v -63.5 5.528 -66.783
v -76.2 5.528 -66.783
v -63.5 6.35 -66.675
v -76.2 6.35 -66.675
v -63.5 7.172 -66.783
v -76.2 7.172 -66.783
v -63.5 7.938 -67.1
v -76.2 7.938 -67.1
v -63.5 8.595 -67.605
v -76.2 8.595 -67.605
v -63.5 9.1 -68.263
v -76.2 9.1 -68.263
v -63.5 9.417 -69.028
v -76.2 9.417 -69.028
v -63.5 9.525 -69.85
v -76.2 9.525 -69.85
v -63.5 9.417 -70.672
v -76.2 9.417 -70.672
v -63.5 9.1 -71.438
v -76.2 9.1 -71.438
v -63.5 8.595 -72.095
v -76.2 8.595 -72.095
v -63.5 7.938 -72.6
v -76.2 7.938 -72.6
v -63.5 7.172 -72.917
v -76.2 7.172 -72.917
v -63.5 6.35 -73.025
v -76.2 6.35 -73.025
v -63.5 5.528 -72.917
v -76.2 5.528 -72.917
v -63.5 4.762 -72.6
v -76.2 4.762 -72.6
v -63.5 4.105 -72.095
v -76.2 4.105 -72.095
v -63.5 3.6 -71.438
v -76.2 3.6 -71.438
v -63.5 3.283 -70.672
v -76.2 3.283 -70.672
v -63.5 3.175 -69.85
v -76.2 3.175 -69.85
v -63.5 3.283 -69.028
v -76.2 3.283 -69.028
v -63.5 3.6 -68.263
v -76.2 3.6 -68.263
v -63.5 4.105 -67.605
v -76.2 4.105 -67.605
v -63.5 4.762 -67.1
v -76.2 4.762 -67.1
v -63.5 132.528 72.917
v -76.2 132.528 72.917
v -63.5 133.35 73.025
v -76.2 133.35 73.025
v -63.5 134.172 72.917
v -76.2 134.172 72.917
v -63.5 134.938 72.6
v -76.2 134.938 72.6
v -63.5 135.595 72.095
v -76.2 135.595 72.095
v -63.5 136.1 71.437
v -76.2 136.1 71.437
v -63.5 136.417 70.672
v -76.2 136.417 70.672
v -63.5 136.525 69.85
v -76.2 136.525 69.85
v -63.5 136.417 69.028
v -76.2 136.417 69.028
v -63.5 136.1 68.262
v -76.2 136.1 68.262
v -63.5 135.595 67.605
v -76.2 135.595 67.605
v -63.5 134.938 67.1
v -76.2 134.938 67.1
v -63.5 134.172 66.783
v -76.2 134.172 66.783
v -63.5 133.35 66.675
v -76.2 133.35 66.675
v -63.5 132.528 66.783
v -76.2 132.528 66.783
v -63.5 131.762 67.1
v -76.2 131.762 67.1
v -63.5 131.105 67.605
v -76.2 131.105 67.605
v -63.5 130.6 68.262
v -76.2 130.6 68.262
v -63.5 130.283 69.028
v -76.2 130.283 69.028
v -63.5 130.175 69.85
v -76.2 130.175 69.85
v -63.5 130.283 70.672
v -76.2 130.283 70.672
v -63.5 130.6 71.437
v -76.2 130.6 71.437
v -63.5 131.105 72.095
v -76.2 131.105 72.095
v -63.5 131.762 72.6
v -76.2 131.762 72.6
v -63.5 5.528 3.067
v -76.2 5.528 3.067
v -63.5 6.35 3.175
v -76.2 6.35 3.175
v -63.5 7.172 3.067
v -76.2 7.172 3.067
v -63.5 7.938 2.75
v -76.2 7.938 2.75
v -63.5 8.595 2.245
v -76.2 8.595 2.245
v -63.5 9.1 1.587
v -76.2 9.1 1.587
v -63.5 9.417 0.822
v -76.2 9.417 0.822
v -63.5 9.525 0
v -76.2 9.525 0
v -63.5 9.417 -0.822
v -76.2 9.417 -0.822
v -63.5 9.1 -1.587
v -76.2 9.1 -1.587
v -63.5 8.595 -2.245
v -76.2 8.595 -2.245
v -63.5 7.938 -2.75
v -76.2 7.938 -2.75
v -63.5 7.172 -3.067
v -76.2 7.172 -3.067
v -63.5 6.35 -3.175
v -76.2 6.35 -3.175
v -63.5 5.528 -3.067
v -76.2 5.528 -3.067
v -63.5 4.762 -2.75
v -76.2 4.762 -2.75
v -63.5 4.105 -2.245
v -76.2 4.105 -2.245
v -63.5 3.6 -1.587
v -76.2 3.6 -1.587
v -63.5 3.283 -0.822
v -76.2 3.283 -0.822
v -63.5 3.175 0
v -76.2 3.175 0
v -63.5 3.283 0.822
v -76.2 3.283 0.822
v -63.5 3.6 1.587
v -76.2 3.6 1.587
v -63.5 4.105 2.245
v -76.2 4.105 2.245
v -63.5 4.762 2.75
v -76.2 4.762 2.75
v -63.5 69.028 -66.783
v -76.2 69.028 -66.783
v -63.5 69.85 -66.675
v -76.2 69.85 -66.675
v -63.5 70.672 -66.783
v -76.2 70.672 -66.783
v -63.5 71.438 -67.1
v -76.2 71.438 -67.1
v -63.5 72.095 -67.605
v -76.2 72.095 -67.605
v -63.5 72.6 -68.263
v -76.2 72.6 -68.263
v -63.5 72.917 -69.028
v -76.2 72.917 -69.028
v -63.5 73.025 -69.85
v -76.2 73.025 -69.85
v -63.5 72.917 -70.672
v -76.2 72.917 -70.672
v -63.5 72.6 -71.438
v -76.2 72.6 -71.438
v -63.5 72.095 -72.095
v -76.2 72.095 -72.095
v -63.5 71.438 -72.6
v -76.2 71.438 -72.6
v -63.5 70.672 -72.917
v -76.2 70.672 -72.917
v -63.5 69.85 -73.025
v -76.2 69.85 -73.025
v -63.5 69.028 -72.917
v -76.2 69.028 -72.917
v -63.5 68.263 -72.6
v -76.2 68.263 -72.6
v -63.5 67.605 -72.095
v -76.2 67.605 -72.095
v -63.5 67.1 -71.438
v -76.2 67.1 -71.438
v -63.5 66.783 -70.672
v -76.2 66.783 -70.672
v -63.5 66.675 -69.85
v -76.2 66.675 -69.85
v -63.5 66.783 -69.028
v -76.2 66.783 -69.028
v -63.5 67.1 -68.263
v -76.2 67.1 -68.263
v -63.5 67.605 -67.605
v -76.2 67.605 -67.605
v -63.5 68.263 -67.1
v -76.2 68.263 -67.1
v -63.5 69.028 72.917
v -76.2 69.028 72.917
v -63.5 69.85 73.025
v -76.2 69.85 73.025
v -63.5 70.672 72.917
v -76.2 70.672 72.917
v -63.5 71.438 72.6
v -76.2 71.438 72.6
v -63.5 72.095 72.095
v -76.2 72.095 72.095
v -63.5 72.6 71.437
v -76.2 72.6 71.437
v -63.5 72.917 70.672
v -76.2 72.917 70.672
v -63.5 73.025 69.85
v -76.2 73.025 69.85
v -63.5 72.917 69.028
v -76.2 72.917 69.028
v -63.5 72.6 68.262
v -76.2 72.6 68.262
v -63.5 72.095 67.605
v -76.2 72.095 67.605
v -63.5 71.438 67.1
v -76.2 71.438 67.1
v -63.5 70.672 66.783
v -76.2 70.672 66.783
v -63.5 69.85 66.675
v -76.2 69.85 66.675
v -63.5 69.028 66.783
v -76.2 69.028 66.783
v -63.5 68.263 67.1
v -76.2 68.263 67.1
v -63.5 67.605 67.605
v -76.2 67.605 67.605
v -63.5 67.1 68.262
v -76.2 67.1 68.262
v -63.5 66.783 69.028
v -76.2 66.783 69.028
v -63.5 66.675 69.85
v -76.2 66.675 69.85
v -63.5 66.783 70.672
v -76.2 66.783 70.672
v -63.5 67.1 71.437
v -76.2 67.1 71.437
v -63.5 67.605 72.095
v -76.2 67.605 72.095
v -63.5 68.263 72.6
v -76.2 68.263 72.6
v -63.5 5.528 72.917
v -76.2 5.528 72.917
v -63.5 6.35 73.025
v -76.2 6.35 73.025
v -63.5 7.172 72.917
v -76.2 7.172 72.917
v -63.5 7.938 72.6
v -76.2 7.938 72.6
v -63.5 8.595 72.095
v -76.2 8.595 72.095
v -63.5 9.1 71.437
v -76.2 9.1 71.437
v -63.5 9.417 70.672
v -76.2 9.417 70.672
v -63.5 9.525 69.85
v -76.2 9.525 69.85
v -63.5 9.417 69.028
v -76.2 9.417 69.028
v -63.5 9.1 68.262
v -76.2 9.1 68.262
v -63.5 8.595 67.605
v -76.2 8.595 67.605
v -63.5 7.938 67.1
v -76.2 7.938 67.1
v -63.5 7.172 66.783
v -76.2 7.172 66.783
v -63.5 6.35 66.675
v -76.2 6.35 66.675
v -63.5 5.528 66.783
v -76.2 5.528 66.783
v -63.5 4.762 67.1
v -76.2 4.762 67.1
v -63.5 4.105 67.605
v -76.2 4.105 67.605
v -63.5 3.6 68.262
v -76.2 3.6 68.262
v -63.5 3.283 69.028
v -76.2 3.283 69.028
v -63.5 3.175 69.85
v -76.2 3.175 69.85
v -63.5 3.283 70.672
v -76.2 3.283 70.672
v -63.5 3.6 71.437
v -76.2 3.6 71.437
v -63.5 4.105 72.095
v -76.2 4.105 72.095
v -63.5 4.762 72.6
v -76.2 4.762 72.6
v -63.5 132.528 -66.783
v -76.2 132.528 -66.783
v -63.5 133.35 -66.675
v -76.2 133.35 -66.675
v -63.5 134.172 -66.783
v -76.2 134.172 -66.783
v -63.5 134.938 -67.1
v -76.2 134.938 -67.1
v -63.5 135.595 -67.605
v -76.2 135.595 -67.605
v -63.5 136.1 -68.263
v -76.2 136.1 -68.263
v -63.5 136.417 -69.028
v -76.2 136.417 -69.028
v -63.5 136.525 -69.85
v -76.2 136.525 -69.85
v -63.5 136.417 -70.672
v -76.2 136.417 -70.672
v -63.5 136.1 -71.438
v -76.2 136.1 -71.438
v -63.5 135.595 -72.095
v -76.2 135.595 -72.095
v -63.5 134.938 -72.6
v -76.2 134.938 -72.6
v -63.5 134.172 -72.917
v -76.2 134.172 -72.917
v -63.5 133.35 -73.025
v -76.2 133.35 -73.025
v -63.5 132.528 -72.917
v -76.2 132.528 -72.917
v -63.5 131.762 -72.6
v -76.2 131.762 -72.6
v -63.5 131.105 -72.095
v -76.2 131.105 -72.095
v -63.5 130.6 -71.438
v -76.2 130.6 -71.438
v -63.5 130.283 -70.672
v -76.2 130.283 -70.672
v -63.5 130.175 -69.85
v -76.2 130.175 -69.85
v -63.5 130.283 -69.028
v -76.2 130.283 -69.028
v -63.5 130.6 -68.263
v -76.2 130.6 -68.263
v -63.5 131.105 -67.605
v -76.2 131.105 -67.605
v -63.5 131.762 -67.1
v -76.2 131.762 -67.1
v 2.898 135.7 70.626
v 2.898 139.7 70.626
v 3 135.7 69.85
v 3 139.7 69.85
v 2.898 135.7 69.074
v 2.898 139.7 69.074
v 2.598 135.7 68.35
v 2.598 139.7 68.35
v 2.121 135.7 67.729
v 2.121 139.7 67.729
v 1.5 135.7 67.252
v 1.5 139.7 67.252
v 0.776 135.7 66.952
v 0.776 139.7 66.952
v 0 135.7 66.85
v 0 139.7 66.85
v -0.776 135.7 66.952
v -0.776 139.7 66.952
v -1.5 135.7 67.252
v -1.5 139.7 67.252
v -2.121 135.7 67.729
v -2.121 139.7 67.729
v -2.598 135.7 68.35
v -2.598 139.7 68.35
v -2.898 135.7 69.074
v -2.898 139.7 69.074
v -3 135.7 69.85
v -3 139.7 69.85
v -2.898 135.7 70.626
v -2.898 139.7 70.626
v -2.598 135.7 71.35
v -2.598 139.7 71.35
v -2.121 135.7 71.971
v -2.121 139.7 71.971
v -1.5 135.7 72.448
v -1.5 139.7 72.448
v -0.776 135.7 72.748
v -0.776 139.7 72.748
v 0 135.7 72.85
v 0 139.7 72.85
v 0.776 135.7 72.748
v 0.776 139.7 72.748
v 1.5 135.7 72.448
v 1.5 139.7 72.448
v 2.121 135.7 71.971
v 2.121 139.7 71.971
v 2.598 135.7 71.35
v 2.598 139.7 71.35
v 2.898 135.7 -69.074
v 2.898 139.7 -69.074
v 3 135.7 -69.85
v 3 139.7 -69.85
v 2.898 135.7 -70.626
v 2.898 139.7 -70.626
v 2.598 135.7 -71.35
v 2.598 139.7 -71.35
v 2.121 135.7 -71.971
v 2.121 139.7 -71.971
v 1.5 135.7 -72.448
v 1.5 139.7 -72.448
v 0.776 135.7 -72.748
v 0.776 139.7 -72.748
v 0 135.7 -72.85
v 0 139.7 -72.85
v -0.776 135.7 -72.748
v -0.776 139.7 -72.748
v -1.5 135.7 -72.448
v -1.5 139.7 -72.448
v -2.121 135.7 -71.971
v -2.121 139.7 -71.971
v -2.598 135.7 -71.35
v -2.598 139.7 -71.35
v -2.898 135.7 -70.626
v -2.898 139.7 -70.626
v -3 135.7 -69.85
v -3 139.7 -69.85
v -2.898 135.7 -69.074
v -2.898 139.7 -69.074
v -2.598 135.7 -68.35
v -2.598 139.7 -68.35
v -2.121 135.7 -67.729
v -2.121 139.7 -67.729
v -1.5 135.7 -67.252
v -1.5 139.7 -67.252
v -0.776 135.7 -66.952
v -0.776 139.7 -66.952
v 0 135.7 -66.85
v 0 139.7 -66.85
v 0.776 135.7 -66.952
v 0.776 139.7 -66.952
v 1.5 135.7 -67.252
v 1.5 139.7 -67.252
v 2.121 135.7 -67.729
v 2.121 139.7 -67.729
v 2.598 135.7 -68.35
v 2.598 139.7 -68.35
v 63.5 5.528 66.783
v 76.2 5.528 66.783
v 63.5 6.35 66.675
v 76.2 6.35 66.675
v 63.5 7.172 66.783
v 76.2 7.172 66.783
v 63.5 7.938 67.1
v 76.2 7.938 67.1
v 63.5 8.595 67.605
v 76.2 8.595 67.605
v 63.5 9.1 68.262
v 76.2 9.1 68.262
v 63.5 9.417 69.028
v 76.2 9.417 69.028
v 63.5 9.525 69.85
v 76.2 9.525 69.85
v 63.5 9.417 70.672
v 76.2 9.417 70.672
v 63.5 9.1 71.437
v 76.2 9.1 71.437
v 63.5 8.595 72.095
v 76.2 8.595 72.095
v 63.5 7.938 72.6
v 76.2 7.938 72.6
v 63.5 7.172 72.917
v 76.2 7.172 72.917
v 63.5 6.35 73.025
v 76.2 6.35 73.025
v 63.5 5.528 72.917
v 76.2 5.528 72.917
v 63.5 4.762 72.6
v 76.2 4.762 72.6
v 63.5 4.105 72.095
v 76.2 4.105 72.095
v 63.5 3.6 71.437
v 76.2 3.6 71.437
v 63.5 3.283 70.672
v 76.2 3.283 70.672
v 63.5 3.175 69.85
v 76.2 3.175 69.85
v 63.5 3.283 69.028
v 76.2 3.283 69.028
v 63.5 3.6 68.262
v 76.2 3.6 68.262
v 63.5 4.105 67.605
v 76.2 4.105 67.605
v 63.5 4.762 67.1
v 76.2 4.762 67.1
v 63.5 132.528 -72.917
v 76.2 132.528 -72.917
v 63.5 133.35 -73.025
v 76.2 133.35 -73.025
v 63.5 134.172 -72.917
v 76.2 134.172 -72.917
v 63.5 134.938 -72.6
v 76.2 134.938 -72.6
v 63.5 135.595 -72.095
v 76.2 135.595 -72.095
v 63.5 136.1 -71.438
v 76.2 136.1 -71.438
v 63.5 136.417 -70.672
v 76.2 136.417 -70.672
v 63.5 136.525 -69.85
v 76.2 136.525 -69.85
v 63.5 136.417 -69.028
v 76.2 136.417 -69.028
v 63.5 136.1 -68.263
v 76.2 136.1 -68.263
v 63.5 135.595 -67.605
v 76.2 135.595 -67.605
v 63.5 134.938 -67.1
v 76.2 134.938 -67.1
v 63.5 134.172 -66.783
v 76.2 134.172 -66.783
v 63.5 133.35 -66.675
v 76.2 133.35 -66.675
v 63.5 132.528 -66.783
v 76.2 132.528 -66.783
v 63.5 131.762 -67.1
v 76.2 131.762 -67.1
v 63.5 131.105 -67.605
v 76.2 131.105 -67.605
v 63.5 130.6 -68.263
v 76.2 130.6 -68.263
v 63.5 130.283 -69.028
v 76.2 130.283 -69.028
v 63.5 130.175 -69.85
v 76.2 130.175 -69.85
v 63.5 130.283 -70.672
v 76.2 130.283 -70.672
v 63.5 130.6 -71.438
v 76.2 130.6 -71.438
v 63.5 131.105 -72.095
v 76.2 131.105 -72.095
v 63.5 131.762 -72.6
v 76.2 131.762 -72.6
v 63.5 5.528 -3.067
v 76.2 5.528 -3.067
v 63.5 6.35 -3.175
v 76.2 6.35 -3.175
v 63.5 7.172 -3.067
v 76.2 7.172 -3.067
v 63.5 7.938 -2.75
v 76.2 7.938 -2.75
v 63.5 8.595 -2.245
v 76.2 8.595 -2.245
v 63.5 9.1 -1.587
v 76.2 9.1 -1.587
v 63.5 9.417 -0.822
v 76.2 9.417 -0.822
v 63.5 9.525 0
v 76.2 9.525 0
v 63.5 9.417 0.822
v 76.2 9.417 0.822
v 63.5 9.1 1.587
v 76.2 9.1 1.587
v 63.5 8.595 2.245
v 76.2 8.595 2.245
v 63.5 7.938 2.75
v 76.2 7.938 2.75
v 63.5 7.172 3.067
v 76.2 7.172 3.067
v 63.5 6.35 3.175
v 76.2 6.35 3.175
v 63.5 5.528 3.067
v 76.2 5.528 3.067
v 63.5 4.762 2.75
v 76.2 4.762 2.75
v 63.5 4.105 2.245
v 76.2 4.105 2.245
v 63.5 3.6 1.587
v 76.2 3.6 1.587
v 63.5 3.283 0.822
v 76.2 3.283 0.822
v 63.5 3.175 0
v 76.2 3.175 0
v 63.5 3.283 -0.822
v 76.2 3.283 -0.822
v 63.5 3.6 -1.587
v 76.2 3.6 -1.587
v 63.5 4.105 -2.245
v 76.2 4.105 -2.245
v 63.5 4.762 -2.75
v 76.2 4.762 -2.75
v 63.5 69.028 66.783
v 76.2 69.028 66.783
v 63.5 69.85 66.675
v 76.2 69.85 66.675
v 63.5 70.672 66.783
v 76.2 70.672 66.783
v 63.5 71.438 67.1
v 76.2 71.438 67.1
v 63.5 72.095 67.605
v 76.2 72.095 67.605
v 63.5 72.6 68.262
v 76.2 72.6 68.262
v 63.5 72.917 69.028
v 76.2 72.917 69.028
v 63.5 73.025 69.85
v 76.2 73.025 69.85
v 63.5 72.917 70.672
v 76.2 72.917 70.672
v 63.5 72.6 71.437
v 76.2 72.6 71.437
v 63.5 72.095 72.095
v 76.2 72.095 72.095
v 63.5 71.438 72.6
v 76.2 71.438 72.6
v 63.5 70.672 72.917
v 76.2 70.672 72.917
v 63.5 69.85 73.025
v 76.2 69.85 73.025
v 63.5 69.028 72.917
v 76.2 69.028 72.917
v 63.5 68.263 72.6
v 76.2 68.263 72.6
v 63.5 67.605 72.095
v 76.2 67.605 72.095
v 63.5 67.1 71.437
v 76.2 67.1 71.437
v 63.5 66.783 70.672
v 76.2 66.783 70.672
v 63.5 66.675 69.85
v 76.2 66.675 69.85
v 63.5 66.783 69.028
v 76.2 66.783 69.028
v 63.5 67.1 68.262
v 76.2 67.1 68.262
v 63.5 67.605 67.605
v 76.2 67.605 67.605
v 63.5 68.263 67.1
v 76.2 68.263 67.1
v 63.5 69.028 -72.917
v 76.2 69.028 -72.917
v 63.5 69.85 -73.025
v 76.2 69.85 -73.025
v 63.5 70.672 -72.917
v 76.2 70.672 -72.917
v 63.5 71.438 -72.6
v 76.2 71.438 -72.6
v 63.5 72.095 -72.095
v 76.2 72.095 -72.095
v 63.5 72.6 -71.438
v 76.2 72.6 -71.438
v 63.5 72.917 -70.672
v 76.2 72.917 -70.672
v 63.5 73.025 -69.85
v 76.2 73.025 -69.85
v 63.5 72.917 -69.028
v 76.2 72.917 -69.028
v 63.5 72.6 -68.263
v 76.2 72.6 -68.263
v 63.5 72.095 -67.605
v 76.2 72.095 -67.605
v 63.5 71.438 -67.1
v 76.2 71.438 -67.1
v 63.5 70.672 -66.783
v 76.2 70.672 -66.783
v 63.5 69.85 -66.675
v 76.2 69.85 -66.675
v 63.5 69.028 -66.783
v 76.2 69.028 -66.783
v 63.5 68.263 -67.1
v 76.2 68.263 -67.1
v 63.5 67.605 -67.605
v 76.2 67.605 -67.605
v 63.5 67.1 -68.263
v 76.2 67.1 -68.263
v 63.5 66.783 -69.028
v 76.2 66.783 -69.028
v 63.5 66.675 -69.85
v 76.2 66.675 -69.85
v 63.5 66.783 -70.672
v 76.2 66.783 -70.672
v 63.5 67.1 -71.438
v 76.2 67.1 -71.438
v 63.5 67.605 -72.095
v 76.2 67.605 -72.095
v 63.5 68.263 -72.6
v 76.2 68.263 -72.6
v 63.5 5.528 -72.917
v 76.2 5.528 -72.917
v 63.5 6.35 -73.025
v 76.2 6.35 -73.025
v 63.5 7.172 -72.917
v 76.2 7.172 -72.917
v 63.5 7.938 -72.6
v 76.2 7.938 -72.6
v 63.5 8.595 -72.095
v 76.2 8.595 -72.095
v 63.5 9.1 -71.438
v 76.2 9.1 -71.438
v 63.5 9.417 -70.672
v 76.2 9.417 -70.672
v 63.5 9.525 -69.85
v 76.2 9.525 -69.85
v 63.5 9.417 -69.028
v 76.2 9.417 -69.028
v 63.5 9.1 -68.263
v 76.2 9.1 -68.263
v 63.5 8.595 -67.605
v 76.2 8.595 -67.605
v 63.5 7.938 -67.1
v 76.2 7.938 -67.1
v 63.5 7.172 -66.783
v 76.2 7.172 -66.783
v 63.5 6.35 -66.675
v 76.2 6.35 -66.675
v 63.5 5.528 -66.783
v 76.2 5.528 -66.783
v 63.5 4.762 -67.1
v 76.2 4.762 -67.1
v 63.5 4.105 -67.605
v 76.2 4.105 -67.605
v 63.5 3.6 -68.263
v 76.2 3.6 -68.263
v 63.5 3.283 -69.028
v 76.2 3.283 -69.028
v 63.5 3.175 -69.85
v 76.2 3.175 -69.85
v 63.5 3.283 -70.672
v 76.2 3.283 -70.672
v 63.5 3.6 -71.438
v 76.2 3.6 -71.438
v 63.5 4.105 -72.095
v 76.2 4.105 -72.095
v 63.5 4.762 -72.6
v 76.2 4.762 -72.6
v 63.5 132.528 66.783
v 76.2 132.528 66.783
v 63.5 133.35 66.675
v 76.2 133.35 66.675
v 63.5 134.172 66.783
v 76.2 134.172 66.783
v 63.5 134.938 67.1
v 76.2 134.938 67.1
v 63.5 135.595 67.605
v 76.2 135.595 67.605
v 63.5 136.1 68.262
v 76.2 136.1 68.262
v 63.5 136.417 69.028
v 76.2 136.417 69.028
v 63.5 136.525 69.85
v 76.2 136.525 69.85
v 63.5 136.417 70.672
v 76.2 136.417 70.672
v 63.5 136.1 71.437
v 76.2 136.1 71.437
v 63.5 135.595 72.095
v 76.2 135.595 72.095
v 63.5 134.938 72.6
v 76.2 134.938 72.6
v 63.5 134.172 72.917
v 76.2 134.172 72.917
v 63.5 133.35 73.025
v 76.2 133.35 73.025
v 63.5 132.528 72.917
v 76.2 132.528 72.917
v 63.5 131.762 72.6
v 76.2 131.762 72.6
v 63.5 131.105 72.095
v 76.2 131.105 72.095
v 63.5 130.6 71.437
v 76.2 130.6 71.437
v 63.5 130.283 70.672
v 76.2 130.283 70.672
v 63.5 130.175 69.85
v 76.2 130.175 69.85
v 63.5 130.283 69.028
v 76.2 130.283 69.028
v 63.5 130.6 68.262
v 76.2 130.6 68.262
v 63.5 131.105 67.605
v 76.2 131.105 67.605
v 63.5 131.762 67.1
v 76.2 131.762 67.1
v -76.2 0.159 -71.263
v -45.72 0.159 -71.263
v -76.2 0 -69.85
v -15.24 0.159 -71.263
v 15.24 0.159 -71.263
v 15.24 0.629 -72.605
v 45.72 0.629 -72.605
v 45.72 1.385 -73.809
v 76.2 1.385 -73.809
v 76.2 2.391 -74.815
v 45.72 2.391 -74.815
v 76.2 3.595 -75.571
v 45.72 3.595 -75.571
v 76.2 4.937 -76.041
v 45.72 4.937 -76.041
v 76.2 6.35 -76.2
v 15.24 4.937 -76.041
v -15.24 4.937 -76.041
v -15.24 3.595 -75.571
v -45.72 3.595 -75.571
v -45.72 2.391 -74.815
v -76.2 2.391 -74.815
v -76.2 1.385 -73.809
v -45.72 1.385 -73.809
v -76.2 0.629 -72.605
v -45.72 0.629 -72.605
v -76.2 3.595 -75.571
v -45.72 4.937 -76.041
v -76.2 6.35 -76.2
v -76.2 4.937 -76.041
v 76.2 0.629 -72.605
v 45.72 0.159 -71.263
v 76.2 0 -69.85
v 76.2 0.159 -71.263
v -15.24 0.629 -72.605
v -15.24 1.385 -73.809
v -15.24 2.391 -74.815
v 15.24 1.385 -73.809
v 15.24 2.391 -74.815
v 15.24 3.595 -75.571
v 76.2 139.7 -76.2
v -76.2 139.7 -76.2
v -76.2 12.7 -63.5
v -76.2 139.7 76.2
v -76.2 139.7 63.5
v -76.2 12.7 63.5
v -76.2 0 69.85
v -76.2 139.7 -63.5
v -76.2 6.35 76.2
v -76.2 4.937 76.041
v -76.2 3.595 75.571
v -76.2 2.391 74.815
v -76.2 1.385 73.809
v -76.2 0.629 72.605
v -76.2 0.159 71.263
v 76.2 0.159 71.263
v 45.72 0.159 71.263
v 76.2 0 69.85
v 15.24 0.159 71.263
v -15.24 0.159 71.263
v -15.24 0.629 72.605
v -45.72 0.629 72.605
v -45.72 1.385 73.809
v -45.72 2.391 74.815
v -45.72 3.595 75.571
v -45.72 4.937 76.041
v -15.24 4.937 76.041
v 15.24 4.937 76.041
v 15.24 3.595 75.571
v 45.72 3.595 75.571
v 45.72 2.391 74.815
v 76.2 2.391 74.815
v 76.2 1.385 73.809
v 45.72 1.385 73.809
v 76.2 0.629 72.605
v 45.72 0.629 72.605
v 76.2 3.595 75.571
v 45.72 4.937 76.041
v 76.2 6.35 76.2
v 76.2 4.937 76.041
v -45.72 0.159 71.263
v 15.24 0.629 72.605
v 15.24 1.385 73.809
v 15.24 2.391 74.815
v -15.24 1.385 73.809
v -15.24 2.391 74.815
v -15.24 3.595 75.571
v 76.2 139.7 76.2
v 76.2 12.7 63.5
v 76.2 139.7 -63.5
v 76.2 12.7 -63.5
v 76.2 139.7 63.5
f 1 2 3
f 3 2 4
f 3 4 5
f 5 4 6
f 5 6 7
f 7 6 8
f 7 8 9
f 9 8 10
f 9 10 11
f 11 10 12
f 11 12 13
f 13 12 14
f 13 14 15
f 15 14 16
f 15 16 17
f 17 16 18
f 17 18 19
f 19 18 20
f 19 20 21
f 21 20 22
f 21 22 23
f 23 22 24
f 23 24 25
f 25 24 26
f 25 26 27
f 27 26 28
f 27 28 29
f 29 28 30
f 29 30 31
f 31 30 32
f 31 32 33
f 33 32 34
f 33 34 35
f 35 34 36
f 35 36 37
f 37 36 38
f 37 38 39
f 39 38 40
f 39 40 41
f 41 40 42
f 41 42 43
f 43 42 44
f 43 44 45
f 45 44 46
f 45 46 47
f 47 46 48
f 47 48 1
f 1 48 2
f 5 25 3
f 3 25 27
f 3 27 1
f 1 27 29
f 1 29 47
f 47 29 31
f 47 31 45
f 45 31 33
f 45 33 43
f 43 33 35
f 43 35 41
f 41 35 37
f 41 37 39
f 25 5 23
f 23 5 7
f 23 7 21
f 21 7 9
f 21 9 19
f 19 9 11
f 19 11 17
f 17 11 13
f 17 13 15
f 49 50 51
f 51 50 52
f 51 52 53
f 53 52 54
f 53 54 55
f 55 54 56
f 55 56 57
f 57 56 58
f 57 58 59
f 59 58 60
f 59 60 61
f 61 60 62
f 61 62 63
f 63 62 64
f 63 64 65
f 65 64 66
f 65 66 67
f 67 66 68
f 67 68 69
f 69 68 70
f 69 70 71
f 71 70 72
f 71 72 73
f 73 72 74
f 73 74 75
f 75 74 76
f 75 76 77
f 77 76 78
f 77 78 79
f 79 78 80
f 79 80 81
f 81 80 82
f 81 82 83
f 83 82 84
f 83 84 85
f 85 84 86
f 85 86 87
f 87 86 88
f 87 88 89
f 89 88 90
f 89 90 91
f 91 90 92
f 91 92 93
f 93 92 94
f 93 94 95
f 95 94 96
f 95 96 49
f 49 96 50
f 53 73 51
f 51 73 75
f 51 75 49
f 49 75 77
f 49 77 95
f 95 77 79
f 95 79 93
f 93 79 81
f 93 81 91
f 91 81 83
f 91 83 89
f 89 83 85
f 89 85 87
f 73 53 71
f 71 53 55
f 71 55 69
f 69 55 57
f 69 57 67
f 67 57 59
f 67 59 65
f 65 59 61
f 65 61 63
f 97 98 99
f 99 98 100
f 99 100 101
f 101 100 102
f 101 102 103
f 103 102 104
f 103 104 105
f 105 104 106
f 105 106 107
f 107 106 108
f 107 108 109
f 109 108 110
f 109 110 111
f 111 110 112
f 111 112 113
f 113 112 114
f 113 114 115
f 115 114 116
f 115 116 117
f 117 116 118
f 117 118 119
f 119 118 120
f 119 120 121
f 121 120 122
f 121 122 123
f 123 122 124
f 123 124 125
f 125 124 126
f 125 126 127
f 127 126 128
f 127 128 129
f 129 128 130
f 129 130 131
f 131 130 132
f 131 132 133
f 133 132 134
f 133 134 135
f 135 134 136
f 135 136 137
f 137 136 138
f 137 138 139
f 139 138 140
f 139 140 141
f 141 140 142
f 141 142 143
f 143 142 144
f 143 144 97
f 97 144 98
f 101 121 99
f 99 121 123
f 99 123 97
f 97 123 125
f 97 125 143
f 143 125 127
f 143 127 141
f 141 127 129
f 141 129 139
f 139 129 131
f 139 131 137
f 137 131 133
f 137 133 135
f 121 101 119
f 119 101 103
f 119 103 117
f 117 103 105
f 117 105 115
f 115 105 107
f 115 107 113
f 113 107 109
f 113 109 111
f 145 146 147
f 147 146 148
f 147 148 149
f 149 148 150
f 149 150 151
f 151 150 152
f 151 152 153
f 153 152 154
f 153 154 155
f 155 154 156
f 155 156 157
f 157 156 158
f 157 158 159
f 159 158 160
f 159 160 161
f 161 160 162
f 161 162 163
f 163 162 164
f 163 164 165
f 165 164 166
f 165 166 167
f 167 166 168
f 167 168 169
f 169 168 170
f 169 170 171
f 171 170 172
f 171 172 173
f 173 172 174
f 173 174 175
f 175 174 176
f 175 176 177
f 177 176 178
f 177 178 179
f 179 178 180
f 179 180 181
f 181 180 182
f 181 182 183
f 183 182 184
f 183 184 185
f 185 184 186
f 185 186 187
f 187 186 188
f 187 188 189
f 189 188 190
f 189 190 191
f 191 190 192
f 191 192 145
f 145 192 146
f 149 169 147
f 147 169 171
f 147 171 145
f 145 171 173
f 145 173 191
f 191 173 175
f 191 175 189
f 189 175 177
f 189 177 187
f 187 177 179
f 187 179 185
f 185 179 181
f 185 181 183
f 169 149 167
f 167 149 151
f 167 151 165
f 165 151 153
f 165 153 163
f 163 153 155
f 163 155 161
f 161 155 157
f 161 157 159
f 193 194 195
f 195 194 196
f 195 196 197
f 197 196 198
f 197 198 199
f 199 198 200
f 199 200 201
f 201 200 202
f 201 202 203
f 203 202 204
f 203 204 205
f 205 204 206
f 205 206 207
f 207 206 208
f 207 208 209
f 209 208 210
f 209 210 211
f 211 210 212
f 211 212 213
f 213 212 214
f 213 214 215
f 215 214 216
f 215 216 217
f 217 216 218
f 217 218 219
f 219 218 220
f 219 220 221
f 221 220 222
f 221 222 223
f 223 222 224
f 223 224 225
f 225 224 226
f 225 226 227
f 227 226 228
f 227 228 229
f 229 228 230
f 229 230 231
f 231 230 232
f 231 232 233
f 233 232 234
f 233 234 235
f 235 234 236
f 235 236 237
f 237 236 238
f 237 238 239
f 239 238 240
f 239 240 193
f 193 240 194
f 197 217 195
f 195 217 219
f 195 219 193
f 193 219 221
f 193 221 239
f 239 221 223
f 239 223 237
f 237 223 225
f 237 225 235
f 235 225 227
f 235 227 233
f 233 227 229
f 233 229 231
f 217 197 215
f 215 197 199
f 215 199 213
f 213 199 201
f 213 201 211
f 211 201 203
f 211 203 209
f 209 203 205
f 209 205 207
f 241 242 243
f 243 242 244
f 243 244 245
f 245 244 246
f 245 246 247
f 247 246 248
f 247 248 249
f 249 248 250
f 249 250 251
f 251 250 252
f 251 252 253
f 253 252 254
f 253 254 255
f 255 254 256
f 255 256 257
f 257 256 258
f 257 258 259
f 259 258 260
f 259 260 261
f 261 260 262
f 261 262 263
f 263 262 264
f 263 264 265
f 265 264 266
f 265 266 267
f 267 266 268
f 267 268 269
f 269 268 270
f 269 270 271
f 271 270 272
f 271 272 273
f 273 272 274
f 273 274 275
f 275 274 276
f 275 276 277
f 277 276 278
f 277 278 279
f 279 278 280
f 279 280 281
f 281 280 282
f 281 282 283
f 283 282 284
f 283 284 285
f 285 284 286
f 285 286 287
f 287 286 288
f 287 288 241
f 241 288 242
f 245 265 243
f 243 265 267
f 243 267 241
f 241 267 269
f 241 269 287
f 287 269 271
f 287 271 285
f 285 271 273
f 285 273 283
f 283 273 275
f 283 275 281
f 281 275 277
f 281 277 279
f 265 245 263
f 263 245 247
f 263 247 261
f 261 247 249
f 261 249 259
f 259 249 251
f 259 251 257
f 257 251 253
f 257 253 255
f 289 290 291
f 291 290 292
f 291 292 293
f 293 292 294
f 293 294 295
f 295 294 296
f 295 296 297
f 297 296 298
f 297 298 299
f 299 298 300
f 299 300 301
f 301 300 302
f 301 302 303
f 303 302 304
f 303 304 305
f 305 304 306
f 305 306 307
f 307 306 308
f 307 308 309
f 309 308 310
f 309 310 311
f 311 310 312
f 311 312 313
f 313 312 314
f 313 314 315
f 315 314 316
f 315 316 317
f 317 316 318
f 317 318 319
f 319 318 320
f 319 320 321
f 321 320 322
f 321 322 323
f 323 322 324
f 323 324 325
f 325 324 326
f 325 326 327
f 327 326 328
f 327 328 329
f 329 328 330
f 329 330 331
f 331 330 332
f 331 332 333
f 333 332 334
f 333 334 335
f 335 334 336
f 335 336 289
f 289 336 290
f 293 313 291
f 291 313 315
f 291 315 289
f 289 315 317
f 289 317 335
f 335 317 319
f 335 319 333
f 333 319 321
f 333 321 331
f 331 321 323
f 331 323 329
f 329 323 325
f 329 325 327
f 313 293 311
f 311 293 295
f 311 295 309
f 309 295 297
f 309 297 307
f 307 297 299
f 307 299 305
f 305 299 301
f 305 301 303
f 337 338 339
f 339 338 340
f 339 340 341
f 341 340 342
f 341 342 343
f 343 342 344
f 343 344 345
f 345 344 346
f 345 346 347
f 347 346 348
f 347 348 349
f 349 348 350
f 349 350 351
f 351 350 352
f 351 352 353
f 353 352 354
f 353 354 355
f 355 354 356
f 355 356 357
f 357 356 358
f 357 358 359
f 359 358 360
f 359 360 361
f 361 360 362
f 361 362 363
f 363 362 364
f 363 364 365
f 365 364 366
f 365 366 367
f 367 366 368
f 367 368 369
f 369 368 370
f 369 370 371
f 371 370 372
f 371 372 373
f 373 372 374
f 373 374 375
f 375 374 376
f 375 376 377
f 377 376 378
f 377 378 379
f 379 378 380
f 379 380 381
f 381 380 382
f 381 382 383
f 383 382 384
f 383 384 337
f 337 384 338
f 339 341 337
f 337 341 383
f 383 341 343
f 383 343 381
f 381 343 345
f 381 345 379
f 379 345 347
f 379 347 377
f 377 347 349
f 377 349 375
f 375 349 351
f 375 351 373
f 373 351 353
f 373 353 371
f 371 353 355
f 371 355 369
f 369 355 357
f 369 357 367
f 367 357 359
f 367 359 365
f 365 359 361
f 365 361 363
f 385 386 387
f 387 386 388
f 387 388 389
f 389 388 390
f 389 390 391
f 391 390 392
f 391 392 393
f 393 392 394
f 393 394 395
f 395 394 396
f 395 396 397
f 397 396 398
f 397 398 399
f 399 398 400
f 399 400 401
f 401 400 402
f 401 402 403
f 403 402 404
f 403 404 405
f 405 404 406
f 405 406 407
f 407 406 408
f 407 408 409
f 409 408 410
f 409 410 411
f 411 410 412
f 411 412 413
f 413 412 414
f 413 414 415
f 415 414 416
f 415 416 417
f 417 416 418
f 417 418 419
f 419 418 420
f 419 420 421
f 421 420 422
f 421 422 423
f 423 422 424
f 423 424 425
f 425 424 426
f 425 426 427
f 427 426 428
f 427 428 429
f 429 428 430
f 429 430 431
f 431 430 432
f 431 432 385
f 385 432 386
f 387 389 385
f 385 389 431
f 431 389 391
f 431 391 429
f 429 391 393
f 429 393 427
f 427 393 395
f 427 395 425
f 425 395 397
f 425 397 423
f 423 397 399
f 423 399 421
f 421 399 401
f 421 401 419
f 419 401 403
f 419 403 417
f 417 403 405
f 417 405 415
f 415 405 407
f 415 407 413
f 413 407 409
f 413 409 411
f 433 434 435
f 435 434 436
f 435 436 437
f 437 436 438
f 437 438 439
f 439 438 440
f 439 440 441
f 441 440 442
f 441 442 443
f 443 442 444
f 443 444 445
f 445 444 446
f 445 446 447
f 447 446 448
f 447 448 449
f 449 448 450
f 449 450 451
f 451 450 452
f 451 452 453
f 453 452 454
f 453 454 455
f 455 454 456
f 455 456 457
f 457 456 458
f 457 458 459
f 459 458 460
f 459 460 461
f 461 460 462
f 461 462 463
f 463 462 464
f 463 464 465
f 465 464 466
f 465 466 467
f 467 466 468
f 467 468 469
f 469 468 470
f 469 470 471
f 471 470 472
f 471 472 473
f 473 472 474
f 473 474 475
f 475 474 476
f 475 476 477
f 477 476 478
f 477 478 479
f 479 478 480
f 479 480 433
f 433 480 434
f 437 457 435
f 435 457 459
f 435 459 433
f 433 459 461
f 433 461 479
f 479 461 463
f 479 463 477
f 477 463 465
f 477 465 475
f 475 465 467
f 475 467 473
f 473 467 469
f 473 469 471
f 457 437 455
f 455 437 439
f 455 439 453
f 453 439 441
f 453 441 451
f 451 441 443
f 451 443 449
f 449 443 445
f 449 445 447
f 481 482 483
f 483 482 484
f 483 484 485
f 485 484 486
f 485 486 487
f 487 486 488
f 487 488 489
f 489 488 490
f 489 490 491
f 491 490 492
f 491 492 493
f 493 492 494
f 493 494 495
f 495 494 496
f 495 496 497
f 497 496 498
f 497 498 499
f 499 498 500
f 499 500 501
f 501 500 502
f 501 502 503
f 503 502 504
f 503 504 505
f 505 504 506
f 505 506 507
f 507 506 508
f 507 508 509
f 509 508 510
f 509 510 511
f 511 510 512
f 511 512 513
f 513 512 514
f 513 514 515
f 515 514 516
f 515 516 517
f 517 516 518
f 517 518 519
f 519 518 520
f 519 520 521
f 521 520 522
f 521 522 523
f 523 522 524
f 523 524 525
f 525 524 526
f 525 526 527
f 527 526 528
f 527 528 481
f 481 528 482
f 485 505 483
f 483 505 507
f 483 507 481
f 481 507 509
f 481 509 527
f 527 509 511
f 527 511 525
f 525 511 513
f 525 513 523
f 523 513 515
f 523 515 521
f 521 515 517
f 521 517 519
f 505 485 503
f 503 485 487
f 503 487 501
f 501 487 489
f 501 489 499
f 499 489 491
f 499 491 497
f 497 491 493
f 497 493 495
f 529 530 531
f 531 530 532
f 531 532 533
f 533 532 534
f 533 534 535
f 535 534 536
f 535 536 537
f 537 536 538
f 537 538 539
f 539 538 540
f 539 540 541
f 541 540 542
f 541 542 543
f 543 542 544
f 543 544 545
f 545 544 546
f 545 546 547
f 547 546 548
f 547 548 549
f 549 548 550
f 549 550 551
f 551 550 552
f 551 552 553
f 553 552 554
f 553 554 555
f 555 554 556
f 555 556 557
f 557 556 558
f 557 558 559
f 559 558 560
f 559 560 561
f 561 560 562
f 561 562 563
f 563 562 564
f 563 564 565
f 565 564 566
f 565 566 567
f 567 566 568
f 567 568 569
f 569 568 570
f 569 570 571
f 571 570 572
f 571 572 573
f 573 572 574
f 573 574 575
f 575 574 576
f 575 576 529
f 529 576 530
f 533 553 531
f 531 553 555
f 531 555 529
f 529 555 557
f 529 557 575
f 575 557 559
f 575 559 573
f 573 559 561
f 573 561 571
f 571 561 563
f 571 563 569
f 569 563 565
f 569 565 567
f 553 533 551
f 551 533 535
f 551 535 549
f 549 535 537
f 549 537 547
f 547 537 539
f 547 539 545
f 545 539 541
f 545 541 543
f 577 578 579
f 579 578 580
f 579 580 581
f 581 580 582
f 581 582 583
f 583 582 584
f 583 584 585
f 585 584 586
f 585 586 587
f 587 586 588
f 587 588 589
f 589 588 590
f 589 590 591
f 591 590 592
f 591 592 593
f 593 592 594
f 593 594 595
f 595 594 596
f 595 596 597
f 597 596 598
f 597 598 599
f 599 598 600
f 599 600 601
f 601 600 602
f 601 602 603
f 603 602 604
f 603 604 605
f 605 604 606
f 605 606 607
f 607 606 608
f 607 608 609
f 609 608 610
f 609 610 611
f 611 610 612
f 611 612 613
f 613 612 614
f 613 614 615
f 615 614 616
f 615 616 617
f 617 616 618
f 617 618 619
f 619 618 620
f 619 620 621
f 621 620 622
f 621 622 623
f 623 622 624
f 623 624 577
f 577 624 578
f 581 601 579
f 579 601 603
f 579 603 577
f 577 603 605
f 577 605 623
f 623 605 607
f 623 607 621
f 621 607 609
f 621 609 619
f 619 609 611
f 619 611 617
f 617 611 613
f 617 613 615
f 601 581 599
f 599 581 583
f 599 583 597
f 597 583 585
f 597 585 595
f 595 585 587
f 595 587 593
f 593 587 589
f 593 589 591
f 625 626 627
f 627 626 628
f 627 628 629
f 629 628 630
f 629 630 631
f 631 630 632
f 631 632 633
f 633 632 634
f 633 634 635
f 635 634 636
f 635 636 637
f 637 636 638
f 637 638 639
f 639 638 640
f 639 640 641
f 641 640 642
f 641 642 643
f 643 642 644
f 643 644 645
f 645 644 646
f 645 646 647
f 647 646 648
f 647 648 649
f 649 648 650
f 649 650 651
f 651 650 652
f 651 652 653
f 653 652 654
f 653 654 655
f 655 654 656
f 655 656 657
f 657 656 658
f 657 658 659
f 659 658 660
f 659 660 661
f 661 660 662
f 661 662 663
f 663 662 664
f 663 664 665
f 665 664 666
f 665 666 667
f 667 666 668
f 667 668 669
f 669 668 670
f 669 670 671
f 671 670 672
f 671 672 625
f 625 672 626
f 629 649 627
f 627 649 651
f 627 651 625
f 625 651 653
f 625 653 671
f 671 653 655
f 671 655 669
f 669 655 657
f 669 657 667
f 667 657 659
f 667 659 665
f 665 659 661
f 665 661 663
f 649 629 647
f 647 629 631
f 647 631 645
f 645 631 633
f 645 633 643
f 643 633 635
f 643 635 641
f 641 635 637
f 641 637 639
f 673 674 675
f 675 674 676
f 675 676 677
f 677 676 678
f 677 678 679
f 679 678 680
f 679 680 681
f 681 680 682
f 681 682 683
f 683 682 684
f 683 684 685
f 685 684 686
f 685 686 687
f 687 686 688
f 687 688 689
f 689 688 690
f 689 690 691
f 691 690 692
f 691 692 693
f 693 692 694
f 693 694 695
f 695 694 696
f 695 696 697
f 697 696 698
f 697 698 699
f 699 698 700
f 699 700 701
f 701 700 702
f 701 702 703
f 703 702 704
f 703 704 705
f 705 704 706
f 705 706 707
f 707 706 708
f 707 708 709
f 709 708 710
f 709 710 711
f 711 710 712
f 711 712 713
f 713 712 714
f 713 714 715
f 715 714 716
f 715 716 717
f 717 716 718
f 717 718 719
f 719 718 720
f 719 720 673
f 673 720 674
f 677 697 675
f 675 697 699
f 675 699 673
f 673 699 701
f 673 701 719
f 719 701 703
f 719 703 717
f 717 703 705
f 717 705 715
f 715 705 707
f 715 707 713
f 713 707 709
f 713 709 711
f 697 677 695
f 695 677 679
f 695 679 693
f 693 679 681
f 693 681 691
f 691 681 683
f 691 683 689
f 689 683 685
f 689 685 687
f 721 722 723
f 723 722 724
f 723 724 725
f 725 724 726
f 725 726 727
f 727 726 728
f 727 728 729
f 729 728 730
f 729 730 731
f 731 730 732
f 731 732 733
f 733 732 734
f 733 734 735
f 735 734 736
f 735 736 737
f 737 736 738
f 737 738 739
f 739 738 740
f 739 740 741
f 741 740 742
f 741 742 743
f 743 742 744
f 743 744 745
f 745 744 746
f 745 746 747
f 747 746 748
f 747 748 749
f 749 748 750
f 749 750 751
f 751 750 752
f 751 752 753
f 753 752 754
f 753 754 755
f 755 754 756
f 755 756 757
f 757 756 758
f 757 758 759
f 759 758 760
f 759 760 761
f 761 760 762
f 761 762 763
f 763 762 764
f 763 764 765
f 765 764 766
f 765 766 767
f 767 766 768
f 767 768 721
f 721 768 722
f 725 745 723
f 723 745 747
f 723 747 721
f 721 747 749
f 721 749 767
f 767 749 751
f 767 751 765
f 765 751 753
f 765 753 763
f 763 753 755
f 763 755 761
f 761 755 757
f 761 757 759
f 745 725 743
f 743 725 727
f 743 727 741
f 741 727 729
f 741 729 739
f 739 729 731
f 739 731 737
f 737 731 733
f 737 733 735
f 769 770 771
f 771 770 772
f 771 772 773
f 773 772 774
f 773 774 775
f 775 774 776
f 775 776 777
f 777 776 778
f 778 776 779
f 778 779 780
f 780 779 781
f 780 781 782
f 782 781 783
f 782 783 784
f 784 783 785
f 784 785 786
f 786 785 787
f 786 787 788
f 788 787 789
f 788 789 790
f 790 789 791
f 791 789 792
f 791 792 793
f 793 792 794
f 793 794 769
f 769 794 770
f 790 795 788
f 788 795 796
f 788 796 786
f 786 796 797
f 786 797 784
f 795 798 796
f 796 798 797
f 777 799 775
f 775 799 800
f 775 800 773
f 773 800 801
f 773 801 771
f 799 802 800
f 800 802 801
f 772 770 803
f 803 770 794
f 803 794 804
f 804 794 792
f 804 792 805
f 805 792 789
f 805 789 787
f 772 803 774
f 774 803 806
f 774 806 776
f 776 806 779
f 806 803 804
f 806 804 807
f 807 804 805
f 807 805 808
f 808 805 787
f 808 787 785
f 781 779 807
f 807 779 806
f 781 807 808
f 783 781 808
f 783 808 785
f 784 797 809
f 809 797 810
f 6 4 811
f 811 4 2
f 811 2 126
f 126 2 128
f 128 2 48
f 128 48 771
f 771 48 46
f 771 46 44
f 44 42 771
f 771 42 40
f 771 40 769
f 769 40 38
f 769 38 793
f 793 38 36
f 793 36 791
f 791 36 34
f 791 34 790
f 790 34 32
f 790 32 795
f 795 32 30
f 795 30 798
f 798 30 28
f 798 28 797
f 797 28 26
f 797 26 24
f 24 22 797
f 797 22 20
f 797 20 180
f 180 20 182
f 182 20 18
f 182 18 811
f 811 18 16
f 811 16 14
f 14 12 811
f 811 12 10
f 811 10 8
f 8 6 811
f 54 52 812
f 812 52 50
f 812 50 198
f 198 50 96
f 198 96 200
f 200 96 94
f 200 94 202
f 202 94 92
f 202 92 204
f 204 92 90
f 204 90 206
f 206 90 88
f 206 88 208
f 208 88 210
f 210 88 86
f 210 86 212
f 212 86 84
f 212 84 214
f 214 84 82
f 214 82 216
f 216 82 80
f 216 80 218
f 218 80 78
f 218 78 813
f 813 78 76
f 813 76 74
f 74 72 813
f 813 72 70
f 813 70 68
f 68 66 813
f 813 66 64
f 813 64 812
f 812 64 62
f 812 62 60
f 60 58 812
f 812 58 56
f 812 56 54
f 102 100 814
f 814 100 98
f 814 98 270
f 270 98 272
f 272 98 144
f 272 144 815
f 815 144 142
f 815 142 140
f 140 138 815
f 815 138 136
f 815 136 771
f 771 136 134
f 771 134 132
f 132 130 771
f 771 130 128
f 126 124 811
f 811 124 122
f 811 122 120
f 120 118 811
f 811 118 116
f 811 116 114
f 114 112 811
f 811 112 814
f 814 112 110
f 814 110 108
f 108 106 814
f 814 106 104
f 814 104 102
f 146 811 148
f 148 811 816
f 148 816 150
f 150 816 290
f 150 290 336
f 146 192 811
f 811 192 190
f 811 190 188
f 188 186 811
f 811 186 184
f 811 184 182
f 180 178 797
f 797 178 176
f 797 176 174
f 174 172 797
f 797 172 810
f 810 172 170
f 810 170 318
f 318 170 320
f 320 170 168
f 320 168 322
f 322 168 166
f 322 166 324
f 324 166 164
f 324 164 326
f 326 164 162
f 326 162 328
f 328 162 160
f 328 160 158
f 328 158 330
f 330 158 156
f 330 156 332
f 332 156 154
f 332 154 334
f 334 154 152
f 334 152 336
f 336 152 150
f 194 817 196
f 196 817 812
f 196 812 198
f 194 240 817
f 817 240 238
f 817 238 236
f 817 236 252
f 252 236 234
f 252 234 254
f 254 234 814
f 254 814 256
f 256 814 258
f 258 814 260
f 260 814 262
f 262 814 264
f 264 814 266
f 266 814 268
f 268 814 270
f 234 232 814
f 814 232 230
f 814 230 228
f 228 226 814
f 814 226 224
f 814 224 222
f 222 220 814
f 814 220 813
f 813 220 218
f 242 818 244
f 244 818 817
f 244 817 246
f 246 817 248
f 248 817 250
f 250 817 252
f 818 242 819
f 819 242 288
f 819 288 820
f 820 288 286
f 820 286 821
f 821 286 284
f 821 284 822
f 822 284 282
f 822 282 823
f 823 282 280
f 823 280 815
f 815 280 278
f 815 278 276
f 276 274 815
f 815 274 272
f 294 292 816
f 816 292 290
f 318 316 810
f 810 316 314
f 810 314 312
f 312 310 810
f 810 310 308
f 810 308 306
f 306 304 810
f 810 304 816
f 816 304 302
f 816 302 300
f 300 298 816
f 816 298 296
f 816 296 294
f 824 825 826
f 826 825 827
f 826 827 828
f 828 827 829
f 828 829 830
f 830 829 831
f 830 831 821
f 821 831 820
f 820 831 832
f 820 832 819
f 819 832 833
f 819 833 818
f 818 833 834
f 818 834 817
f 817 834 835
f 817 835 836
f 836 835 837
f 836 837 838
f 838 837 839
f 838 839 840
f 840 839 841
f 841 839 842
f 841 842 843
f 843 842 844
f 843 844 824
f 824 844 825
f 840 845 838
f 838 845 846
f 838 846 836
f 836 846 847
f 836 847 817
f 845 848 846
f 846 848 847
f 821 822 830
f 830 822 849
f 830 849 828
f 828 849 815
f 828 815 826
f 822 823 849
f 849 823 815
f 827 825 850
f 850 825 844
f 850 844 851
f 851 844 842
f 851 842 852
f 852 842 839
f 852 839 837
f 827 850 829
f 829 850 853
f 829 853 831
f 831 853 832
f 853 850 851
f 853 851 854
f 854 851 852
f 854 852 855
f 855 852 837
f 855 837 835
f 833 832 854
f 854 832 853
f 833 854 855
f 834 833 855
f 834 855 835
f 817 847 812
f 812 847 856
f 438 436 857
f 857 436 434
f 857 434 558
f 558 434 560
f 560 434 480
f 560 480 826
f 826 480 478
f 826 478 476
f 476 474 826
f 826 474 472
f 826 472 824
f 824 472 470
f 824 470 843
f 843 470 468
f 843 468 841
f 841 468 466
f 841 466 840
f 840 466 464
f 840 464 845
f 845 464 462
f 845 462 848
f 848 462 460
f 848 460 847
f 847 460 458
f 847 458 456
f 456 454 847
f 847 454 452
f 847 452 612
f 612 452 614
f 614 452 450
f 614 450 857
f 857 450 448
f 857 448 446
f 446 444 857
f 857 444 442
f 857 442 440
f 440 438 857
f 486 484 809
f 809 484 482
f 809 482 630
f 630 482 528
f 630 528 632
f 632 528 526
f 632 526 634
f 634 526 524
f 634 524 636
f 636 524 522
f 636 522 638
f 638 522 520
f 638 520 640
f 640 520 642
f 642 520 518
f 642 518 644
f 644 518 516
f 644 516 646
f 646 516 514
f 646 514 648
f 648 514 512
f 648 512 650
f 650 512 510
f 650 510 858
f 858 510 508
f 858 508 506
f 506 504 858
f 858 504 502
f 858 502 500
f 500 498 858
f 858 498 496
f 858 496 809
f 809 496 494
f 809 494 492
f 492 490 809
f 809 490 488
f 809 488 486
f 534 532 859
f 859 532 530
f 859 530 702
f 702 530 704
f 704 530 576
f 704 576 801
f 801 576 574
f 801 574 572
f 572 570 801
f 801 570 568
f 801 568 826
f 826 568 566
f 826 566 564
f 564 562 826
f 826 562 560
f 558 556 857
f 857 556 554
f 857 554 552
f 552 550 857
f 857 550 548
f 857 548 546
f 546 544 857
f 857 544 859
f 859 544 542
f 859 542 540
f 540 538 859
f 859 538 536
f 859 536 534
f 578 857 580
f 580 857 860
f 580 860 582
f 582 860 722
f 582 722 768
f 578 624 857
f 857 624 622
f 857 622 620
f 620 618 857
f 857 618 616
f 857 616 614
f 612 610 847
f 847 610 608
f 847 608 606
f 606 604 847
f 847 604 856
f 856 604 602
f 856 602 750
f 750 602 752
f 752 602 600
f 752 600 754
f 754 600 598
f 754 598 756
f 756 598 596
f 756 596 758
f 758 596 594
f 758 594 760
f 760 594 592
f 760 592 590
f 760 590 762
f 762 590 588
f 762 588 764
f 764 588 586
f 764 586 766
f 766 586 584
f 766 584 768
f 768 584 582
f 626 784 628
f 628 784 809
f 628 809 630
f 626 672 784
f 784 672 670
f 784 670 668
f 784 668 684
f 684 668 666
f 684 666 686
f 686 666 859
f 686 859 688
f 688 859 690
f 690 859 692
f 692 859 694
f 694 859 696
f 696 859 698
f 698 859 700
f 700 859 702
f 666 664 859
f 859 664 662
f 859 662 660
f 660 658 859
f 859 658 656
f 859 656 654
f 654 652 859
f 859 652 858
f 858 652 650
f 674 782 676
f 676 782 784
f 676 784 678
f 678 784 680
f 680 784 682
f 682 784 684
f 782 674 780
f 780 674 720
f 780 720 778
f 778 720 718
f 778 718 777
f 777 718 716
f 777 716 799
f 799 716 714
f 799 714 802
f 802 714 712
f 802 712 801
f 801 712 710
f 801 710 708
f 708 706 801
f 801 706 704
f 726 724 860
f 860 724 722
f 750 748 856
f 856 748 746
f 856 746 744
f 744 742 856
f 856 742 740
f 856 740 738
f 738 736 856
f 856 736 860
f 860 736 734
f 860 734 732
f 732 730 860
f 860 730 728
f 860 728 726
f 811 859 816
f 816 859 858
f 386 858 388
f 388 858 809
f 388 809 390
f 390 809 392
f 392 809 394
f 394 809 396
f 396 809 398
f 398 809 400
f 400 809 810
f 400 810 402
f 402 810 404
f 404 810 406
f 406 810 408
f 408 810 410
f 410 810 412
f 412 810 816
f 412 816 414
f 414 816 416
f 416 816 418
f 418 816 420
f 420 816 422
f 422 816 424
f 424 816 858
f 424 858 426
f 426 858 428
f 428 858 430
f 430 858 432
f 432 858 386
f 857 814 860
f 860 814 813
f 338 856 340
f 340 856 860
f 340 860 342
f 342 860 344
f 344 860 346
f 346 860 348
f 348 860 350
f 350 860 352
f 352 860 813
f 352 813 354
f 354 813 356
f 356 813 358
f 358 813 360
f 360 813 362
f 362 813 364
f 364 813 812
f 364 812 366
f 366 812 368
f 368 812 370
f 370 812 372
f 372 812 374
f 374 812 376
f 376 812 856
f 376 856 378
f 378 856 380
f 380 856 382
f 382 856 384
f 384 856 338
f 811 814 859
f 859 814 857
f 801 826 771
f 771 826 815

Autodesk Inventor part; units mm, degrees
ref_plane "YZ Plane" through (0, 0, 0) normal (1, 0, 0) x (0, 1, 0)
ref_plane "XZ Plane" through (0, 0, 0) normal (0, 1, 0) x (-1, 0, 0)
ref_plane "XY Plane" through (0, 0, 0) normal (0, 0, 1) x (1, 0, 0)
sketch "Sketch1" plane through (0, 0, 0) normal (0, 1, 0) x (-1, 0, 0)
  point P0 (0, 0)
sketch "Sketch2" plane through (0, 0, 0) normal (0, 1, 0) x (-1, 0, 0)
  line L0 (-76.2, 76.2) -> (76.2, 76.2)
  line L1 (76.2, 76.2) -> (76.2, -76.2)
  line L2 (76.2, -76.2) -> (-76.2, -76.2)
  line L3 (-76.2, -76.2) -> (-76.2, 76.2)
  line L4 (-76.2, 76.2) -> (76.2, -76.2) construction
  line L5 (76.2, 76.2) -> (-76.2, -76.2) construction
  point P0 (0, 0)
  dimension "d0" = 152.4
  dimension "d1" = 152.4
extrude "Extrusion1" add sketch "Sketch2" along normal blind 12.7
sketch "Sketch3" plane through (0, 12.7, 0) normal (0, 1, 0) x (1, 0, 0)
  line L0 (76.2, 76.2) -> (-76.2, 76.2) projected
  line L1 (76.2, -76.2) -> (76.2, 76.2) projected
  line L2 (-76.2, 76.2) -> (76.2, 76.2)
  line L3 (76.2, 76.2) -> (76.2, 63.5)
  line L4 (76.2, 63.5) -> (-76.2, 63.5)
  line L5 (-76.2, 63.5) -> (-76.2, 76.2)
  line L6 (-76.2, -76.2) -> (76.2, -76.2)
  line L7 (76.2, -76.2) -> (76.2, -63.5)
  line L8 (76.2, -63.5) -> (-76.2, -63.5)
  line L9 (-76.2, -63.5) -> (-76.2, -76.2)
  point P0 (0, 0)
  point P1 (76.2, -76.2)
  dimension "d4" = 12.7
  dimension "d5" = 12.7
  dimension "d15" = 152.4
extrude "Extrusion2" add sketch "Sketch3" along normal blind 127
fillet "Fillet1" radius 6.35 2 edges at (0, 0, 76.2) (0, 0, -76.2)
sketch "Sketch4" plane through (76.2, 12.7, -63.5) normal (1, 0, 0) x (0, 0, -1)
  circle A0 centre (-133.35, 120.65) radius 3.175
  circle A1 centre (-133.35, -6.35) radius 3.175
  circle A2 centre (-133.35, 57.15) radius 3.175
  circle A3 centre (6.35, 120.65) radius 3.175
  circle A4 centre (6.35, -6.35) radius 3.175
  circle A5 centre (6.35, 57.15) radius 3.175
  circle A6 centre (-63.5, -6.35) radius 3.175
  point P0 (-63.5, -12.7)
  dimension "d9" = 127
extrude "Extrusion3" cut sketch "Sketch4" against normal blind 12.7
sketch "Sketch5" plane through (-76.2, 12.7, 63.5) normal (-1, 0, 0) x (0, 0, 1)
  circle A0 centre (-133.35, 120.65) radius 3.175 projected
  circle A1 centre (-133.35, 120.65) radius 3.175
  circle A2 centre (-133.35, 57.15) radius 3.175 projected
  circle A3 centre (-133.35, 57.15) radius 3.175
  circle A4 centre (-133.35, -6.35) radius 3.175 projected
  circle A5 centre (-133.35, -6.35) radius 3.175
  circle A6 centre (-63.5, -6.35) radius 3.175 projected
  circle A7 centre (-63.5, -6.35) radius 3.175
  circle A8 centre (6.35, -6.35) radius 3.175 projected
  circle A9 centre (6.35, -6.35) radius 3.175
  circle A10 centre (6.35, 57.15) radius 3.175 projected
  circle A11 centre (6.35, 57.15) radius 3.175
  circle A12 centre (6.35, 120.65) radius 3.175 projected
  circle A13 centre (6.35, 120.65) radius 3.175
  line L0 (6.35, -12.7) -> (-133.35, -12.7) projected
  point P0 (-63.5, -12.7)
  dimension "d20" = 69.85
sketch "Sketch6" plane through (0, 139.7, 0) normal (0, 1, 0) x (1, 0, 0)
  line L0 (76.2, 69.85) -> (-76.2, 69.85) projected
  circle A0 centre (0, 69.85) radius 3
  line L1 (-76.2, -69.85) -> (76.2, -69.85) projected
  circle A1 centre (0, -69.85) radius 3
  point P0 (0, 0)
  dimension "d16" = 6
  dimension "d17" = 6
extrude "Extrusion5" cut sketch "Sketch6" against normal blind 4
extrude "Extrusion6" cut sketch "Sketch5" against normal blind 12.7
properties part number "Fuselage_Body_Piece"
